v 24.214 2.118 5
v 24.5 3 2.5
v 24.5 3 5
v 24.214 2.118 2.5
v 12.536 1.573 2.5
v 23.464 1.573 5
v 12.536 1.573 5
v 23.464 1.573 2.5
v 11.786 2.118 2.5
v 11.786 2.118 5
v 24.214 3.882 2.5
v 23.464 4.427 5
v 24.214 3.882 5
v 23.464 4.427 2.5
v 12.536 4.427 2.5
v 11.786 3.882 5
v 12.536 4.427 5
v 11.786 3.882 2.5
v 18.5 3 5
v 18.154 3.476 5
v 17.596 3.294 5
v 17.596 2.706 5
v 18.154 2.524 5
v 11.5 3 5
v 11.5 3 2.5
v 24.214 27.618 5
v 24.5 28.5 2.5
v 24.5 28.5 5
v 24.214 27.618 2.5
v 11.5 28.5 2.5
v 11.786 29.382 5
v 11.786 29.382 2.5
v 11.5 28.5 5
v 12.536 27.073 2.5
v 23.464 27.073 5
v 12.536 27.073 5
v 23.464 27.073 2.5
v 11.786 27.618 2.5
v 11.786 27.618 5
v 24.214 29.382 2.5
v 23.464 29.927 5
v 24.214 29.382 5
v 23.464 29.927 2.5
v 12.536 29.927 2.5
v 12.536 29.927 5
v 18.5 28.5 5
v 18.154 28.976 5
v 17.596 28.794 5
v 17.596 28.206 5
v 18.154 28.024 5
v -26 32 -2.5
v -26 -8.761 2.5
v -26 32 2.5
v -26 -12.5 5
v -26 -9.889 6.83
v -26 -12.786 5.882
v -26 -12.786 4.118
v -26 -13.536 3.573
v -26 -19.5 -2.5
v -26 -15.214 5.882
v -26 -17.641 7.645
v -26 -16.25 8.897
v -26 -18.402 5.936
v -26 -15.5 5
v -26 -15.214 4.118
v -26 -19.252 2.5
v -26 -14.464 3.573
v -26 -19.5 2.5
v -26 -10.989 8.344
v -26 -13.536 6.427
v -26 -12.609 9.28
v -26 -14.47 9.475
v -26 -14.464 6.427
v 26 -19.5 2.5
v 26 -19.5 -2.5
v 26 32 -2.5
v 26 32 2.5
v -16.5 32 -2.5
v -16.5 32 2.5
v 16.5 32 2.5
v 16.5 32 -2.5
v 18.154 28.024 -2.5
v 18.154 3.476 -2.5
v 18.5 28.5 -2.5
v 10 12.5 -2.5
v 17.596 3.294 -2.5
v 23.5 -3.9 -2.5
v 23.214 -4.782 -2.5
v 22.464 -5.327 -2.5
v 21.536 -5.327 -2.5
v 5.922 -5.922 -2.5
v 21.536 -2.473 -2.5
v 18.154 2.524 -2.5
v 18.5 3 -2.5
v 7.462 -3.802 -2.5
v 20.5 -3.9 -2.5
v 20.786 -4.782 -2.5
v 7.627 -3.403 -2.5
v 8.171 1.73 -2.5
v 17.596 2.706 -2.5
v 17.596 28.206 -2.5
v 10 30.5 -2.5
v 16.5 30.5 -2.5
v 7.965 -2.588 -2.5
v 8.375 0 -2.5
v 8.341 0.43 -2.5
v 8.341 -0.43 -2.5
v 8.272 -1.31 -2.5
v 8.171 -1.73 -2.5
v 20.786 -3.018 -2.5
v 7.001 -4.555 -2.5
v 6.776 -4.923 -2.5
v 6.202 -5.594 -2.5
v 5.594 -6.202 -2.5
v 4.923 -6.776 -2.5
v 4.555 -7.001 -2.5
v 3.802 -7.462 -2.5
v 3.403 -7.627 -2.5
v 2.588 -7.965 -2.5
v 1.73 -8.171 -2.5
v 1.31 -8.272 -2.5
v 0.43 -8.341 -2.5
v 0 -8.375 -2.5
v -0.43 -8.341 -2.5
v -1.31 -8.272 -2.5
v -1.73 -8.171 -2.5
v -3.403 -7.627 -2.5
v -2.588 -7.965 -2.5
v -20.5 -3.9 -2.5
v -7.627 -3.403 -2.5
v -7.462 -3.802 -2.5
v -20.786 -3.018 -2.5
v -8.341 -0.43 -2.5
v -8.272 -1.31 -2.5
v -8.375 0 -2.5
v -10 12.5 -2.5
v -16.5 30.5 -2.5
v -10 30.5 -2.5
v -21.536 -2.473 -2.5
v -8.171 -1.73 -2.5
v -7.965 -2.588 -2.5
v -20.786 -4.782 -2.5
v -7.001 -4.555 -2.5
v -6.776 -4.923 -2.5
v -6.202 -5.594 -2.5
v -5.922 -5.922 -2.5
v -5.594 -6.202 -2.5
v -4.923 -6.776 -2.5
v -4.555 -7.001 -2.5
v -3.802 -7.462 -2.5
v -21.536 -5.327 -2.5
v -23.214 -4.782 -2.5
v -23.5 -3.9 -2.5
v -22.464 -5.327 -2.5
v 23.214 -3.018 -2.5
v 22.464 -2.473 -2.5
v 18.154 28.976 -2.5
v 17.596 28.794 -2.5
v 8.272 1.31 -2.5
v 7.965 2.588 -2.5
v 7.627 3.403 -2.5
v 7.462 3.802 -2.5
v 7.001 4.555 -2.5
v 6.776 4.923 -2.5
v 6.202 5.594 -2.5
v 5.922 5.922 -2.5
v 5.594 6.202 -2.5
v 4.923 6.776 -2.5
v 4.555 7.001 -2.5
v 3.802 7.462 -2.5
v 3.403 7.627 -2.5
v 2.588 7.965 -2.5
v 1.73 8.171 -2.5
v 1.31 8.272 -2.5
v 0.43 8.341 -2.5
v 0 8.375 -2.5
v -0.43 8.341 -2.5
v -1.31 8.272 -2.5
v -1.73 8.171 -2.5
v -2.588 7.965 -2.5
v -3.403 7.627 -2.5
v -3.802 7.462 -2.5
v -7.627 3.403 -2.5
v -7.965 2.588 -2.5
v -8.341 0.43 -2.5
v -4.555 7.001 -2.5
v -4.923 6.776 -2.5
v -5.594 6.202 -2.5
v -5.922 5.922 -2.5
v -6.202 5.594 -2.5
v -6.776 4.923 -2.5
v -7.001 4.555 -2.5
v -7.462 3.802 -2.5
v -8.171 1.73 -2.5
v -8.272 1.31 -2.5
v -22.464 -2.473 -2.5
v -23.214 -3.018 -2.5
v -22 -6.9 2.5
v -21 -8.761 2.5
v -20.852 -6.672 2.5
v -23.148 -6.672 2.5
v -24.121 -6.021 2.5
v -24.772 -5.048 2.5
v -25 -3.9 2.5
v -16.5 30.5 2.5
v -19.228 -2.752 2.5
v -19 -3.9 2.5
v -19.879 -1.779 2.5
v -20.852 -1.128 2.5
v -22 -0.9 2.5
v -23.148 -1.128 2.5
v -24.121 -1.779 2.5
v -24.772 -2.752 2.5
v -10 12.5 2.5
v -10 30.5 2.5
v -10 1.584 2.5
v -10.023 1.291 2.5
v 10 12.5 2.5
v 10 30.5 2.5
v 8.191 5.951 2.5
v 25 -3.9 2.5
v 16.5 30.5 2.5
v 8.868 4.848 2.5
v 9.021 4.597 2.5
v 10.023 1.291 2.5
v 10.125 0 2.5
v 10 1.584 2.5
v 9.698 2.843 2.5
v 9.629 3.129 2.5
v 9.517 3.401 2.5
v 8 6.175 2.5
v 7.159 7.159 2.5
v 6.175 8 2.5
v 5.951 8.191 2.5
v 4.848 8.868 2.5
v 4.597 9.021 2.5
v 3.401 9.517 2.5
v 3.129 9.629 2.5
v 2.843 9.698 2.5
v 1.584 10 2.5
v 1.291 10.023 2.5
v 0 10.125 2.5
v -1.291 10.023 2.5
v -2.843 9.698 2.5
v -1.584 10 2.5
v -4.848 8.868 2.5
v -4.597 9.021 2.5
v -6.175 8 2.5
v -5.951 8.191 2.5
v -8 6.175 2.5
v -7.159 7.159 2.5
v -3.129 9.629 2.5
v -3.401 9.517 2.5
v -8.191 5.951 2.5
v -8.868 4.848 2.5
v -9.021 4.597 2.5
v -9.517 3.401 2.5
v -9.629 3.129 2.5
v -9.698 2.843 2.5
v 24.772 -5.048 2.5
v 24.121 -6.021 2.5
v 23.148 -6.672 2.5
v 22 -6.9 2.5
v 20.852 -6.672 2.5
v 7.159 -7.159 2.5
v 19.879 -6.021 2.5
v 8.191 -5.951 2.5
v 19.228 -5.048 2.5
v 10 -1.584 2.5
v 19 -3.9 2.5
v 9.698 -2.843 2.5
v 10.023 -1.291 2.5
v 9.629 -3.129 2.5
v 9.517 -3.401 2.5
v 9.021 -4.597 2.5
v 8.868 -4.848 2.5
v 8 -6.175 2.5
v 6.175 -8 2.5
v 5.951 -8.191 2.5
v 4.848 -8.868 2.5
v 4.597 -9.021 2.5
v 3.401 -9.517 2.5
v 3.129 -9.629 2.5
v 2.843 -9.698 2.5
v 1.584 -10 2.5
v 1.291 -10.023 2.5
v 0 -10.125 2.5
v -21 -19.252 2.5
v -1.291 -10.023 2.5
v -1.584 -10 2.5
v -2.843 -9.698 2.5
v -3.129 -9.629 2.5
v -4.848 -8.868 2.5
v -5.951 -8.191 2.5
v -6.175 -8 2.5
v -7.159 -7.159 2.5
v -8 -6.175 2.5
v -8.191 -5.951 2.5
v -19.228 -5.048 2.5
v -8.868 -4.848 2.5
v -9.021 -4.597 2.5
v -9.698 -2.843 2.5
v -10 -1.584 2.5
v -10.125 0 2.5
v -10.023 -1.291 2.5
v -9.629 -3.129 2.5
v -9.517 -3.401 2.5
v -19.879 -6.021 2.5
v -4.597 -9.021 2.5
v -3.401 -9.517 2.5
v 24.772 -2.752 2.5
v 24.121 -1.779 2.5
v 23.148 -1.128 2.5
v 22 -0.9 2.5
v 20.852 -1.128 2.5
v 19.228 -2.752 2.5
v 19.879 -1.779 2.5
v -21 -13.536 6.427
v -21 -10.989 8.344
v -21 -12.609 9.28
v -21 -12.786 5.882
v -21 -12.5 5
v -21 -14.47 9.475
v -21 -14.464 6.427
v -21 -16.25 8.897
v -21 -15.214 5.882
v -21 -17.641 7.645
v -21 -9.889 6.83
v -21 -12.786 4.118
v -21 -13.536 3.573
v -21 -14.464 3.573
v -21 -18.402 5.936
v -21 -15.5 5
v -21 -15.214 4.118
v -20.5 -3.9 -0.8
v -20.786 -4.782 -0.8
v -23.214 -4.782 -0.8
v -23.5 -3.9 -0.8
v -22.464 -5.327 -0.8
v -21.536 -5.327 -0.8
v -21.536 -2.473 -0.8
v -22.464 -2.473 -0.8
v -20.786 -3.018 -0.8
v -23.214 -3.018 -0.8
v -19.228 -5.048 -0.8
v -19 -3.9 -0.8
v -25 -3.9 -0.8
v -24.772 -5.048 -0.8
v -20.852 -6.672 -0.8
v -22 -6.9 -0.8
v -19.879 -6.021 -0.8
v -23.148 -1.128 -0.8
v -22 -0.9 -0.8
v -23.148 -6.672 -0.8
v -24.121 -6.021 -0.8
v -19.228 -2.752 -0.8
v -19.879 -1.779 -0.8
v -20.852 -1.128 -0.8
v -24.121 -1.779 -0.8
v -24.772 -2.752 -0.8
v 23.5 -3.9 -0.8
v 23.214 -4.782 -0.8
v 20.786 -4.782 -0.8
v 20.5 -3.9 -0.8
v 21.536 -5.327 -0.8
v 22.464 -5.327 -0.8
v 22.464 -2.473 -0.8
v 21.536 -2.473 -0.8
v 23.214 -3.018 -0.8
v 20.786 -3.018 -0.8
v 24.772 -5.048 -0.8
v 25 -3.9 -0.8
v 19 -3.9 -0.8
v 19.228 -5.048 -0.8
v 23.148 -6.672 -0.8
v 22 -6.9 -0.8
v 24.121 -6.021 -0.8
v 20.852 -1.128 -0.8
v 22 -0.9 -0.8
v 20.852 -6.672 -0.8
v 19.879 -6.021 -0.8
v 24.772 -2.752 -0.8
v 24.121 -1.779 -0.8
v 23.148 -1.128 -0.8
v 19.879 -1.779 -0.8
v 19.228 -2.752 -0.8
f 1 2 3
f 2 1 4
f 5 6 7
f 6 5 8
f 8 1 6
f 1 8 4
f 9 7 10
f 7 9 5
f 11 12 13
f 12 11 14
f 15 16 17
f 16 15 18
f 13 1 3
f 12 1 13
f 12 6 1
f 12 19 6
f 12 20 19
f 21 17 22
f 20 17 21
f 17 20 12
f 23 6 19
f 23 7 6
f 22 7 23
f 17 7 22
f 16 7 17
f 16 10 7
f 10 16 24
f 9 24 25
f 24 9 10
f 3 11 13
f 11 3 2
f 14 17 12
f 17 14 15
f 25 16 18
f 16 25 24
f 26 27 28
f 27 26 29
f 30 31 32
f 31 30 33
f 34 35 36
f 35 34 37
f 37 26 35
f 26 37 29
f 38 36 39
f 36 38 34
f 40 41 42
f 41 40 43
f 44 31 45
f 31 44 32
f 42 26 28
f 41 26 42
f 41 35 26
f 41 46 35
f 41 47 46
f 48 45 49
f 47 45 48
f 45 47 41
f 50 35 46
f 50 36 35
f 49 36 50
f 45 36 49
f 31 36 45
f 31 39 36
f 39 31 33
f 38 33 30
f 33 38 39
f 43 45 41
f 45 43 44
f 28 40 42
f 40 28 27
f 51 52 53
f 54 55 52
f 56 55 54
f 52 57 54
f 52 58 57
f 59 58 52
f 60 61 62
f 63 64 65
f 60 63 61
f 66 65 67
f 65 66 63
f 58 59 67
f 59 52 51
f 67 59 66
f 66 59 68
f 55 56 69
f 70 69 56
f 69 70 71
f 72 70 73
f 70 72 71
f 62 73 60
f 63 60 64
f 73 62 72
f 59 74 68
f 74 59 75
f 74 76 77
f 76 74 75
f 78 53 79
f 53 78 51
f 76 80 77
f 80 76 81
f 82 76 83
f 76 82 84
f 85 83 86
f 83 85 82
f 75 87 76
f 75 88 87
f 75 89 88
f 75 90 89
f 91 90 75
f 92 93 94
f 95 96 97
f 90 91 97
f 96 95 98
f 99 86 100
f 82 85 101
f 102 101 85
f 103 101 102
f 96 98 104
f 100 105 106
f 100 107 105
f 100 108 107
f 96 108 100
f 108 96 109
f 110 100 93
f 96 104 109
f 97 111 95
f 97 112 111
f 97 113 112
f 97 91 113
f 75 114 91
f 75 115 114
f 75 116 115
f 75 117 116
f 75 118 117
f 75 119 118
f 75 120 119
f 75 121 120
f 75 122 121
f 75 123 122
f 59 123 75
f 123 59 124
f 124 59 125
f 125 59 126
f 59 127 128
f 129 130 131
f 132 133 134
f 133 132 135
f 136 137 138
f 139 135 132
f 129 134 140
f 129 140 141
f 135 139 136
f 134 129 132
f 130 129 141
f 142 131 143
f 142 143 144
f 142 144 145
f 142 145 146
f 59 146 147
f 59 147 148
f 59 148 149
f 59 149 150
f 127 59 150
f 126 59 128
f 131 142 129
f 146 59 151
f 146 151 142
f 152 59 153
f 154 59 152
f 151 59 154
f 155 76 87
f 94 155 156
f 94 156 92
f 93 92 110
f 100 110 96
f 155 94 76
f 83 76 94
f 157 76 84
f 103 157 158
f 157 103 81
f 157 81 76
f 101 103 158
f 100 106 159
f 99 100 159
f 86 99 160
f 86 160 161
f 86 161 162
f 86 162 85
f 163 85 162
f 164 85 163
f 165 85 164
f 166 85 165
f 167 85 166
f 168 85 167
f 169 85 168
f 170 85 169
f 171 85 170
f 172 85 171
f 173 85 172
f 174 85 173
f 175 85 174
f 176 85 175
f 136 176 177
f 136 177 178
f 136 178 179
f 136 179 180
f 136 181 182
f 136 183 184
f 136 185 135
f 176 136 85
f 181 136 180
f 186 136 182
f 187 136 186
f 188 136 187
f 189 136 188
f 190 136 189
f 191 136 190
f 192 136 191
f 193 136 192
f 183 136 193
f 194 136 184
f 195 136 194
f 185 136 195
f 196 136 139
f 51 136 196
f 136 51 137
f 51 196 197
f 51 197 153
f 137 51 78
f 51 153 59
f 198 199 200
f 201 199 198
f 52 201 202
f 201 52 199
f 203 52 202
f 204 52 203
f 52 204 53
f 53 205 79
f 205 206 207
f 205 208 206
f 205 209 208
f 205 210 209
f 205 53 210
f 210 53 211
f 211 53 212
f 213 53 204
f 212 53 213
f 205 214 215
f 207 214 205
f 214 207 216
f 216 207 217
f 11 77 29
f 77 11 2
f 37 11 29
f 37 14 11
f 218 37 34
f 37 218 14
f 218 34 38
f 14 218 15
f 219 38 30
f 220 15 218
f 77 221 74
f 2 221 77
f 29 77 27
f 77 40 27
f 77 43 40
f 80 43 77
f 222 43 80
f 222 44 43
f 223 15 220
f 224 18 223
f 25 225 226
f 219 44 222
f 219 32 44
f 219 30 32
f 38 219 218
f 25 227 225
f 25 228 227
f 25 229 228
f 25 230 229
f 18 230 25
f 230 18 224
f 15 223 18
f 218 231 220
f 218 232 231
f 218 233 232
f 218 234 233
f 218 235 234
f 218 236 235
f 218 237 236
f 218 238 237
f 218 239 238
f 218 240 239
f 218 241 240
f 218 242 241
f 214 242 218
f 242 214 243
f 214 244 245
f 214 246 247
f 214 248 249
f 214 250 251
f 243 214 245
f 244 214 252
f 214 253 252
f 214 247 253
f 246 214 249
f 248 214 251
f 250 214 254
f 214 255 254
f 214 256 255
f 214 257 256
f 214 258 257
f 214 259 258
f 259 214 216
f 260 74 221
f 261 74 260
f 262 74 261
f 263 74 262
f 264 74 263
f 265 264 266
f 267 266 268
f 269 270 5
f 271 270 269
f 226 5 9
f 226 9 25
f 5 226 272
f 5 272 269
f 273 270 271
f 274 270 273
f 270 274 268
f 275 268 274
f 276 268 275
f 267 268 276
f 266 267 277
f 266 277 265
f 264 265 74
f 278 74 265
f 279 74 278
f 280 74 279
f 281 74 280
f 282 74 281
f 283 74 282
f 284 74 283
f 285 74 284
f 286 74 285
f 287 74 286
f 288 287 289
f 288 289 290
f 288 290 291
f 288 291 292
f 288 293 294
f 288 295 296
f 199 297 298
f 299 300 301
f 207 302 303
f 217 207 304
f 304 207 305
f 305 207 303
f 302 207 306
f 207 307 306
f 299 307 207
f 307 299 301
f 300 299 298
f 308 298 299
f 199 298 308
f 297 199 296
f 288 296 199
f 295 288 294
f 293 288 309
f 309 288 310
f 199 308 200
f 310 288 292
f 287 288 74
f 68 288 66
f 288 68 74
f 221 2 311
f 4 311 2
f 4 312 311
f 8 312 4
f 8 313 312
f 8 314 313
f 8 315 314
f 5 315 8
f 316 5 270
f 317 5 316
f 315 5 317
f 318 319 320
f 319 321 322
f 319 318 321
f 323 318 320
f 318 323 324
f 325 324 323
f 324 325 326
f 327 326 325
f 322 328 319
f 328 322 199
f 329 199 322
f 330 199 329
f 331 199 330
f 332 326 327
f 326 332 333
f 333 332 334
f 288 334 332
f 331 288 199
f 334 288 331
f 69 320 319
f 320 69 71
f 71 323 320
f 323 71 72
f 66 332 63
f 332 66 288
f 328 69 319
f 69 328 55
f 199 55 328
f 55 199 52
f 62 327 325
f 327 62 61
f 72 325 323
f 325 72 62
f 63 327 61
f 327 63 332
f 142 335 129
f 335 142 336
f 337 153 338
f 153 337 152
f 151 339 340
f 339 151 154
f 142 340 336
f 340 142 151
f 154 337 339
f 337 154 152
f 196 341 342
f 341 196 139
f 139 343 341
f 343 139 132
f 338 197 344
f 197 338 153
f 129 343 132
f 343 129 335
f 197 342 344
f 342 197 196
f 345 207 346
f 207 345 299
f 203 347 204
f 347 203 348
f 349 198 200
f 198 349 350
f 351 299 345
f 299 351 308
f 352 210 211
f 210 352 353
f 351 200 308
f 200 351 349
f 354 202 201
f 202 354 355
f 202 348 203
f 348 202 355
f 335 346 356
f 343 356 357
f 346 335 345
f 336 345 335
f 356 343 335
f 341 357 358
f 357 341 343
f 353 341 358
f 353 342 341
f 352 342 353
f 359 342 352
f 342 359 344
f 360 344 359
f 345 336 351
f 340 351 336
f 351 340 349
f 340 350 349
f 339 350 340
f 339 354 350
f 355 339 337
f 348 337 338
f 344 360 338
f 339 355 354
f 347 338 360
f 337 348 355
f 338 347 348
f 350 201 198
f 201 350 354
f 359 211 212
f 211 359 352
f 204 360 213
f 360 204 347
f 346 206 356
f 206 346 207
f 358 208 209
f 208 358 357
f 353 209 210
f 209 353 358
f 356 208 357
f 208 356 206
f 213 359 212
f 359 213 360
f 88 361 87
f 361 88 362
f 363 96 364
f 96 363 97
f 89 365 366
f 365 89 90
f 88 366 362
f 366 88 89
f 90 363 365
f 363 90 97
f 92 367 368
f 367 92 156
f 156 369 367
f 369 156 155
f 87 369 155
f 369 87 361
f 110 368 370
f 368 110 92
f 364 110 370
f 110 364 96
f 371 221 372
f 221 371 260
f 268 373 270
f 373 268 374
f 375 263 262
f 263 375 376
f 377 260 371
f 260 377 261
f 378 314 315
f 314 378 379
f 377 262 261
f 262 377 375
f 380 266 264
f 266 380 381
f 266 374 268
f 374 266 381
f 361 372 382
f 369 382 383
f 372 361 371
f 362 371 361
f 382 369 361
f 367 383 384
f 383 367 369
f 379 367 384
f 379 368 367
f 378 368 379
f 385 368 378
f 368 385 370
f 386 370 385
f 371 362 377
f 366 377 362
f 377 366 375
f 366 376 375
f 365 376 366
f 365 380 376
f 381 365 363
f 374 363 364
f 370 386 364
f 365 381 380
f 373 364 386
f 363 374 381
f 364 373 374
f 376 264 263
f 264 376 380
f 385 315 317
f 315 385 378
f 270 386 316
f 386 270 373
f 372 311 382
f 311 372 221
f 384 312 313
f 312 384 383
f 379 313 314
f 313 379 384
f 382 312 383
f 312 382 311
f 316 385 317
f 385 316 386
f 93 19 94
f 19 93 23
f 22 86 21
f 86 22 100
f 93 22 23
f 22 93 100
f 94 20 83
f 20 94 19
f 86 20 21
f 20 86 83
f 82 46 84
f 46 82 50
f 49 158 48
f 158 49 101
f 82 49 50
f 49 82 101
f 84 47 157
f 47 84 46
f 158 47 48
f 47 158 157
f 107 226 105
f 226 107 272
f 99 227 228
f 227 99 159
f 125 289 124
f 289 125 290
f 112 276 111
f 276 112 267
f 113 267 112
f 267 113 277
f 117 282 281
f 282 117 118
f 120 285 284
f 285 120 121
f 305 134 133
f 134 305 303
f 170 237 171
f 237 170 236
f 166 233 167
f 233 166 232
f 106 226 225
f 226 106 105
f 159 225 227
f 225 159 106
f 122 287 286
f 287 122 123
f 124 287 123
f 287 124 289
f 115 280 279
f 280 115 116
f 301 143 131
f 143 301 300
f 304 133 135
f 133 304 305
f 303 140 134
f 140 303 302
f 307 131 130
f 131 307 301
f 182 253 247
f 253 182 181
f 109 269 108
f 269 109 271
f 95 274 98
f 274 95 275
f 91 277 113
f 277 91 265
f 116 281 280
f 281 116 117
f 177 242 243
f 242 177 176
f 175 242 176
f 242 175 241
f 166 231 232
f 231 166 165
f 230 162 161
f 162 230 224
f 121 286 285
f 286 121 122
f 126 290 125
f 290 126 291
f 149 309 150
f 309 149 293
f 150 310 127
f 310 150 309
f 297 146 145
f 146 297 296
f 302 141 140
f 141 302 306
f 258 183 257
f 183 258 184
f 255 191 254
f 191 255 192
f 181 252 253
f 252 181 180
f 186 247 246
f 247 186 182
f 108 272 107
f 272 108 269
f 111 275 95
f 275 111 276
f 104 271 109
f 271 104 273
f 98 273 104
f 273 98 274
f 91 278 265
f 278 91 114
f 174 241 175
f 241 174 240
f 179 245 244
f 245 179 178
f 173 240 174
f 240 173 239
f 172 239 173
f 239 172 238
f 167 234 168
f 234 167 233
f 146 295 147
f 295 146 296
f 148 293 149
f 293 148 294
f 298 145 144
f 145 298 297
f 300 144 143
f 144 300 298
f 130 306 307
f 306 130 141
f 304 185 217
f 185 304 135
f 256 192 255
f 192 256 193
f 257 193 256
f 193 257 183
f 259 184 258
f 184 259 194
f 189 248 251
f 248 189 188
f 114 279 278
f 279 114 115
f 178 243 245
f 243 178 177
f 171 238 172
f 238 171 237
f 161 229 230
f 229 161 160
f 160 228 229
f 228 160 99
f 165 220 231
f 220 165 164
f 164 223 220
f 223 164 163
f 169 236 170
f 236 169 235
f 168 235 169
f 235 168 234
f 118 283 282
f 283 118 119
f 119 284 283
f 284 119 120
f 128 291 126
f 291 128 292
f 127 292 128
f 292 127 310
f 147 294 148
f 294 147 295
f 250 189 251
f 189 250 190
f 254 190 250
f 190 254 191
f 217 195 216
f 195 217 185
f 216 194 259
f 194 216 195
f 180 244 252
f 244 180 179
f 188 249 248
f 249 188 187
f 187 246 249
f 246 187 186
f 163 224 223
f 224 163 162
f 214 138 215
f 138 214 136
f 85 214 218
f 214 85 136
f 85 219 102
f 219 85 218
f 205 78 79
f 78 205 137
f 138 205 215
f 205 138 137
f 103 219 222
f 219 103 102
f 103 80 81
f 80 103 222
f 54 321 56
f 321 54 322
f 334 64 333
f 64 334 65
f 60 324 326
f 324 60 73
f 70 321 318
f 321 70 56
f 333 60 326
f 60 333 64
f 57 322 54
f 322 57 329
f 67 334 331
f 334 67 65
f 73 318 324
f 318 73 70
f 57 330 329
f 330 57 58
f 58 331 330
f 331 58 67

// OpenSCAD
module hotend_platform()
{
  difference() {
    union() {
      translate([0,0,-6.25]) cube([52,5,51.5], center=true);
      rotate([90,0,0]) {
        for (j=[0,1]) hull() for (i=[0,1]) {
          translate([(i*10)+13,-((j*25.5)+3),-3.5]) cylinder(d=3, h=3, center=true, $fn=10);
        }
      }
      rotate([0,90,0]) {
        translate([-14,1,-23.5]) hull() {
          cube([11,1,5], center=true);
          translate([0,4,0]) cylinder(d=9, h=5, center=true);
        }
      }
    }
    translate([0,0,-23]) cube([20,6,21], center=true);
    translate([0,0,-33]) cube([33,6,5], center=true);
    rotate([90,0,0]) {
      cylinder(d1=22, d2=15, h=10, center=true, $fn=40);
      for(i=[-1,1]) translate([i*22,3.9,0]) {
        cylinder(d=3, h=10, center=true, $fn=10);
        translate([0,0,-5+3.3]) cylinder(d=6, h=5, center=true, $fn=16);
      }
      # for (i=[0,1]) translate([18,-((i*25.5)+3),0]) cylinder(d=1, h=12, center=true);
    }
    #rotate([0,90,0]) translate([-14,5,-24.5]) cylinder(d=3, h=10, center=true, $fn=10);
  }
}

rotate([90,0,0]) {
  // % translate([0,-10.2,-39]) {
  //     import("../distribution/bowden_carriage.stl", convexity=3);
  //     translate([0,1.5,45.2]) rotate([180,0,0]) import("../distribution/bowden_carriage_clamp.stl", convexity=3);
  //     translate([0,-13.4,39]) rotate([-90,180,0]) import("../inc/e3d_v6_hotend.stl", convexity=3);
  // }
  hotend_platform();
}
